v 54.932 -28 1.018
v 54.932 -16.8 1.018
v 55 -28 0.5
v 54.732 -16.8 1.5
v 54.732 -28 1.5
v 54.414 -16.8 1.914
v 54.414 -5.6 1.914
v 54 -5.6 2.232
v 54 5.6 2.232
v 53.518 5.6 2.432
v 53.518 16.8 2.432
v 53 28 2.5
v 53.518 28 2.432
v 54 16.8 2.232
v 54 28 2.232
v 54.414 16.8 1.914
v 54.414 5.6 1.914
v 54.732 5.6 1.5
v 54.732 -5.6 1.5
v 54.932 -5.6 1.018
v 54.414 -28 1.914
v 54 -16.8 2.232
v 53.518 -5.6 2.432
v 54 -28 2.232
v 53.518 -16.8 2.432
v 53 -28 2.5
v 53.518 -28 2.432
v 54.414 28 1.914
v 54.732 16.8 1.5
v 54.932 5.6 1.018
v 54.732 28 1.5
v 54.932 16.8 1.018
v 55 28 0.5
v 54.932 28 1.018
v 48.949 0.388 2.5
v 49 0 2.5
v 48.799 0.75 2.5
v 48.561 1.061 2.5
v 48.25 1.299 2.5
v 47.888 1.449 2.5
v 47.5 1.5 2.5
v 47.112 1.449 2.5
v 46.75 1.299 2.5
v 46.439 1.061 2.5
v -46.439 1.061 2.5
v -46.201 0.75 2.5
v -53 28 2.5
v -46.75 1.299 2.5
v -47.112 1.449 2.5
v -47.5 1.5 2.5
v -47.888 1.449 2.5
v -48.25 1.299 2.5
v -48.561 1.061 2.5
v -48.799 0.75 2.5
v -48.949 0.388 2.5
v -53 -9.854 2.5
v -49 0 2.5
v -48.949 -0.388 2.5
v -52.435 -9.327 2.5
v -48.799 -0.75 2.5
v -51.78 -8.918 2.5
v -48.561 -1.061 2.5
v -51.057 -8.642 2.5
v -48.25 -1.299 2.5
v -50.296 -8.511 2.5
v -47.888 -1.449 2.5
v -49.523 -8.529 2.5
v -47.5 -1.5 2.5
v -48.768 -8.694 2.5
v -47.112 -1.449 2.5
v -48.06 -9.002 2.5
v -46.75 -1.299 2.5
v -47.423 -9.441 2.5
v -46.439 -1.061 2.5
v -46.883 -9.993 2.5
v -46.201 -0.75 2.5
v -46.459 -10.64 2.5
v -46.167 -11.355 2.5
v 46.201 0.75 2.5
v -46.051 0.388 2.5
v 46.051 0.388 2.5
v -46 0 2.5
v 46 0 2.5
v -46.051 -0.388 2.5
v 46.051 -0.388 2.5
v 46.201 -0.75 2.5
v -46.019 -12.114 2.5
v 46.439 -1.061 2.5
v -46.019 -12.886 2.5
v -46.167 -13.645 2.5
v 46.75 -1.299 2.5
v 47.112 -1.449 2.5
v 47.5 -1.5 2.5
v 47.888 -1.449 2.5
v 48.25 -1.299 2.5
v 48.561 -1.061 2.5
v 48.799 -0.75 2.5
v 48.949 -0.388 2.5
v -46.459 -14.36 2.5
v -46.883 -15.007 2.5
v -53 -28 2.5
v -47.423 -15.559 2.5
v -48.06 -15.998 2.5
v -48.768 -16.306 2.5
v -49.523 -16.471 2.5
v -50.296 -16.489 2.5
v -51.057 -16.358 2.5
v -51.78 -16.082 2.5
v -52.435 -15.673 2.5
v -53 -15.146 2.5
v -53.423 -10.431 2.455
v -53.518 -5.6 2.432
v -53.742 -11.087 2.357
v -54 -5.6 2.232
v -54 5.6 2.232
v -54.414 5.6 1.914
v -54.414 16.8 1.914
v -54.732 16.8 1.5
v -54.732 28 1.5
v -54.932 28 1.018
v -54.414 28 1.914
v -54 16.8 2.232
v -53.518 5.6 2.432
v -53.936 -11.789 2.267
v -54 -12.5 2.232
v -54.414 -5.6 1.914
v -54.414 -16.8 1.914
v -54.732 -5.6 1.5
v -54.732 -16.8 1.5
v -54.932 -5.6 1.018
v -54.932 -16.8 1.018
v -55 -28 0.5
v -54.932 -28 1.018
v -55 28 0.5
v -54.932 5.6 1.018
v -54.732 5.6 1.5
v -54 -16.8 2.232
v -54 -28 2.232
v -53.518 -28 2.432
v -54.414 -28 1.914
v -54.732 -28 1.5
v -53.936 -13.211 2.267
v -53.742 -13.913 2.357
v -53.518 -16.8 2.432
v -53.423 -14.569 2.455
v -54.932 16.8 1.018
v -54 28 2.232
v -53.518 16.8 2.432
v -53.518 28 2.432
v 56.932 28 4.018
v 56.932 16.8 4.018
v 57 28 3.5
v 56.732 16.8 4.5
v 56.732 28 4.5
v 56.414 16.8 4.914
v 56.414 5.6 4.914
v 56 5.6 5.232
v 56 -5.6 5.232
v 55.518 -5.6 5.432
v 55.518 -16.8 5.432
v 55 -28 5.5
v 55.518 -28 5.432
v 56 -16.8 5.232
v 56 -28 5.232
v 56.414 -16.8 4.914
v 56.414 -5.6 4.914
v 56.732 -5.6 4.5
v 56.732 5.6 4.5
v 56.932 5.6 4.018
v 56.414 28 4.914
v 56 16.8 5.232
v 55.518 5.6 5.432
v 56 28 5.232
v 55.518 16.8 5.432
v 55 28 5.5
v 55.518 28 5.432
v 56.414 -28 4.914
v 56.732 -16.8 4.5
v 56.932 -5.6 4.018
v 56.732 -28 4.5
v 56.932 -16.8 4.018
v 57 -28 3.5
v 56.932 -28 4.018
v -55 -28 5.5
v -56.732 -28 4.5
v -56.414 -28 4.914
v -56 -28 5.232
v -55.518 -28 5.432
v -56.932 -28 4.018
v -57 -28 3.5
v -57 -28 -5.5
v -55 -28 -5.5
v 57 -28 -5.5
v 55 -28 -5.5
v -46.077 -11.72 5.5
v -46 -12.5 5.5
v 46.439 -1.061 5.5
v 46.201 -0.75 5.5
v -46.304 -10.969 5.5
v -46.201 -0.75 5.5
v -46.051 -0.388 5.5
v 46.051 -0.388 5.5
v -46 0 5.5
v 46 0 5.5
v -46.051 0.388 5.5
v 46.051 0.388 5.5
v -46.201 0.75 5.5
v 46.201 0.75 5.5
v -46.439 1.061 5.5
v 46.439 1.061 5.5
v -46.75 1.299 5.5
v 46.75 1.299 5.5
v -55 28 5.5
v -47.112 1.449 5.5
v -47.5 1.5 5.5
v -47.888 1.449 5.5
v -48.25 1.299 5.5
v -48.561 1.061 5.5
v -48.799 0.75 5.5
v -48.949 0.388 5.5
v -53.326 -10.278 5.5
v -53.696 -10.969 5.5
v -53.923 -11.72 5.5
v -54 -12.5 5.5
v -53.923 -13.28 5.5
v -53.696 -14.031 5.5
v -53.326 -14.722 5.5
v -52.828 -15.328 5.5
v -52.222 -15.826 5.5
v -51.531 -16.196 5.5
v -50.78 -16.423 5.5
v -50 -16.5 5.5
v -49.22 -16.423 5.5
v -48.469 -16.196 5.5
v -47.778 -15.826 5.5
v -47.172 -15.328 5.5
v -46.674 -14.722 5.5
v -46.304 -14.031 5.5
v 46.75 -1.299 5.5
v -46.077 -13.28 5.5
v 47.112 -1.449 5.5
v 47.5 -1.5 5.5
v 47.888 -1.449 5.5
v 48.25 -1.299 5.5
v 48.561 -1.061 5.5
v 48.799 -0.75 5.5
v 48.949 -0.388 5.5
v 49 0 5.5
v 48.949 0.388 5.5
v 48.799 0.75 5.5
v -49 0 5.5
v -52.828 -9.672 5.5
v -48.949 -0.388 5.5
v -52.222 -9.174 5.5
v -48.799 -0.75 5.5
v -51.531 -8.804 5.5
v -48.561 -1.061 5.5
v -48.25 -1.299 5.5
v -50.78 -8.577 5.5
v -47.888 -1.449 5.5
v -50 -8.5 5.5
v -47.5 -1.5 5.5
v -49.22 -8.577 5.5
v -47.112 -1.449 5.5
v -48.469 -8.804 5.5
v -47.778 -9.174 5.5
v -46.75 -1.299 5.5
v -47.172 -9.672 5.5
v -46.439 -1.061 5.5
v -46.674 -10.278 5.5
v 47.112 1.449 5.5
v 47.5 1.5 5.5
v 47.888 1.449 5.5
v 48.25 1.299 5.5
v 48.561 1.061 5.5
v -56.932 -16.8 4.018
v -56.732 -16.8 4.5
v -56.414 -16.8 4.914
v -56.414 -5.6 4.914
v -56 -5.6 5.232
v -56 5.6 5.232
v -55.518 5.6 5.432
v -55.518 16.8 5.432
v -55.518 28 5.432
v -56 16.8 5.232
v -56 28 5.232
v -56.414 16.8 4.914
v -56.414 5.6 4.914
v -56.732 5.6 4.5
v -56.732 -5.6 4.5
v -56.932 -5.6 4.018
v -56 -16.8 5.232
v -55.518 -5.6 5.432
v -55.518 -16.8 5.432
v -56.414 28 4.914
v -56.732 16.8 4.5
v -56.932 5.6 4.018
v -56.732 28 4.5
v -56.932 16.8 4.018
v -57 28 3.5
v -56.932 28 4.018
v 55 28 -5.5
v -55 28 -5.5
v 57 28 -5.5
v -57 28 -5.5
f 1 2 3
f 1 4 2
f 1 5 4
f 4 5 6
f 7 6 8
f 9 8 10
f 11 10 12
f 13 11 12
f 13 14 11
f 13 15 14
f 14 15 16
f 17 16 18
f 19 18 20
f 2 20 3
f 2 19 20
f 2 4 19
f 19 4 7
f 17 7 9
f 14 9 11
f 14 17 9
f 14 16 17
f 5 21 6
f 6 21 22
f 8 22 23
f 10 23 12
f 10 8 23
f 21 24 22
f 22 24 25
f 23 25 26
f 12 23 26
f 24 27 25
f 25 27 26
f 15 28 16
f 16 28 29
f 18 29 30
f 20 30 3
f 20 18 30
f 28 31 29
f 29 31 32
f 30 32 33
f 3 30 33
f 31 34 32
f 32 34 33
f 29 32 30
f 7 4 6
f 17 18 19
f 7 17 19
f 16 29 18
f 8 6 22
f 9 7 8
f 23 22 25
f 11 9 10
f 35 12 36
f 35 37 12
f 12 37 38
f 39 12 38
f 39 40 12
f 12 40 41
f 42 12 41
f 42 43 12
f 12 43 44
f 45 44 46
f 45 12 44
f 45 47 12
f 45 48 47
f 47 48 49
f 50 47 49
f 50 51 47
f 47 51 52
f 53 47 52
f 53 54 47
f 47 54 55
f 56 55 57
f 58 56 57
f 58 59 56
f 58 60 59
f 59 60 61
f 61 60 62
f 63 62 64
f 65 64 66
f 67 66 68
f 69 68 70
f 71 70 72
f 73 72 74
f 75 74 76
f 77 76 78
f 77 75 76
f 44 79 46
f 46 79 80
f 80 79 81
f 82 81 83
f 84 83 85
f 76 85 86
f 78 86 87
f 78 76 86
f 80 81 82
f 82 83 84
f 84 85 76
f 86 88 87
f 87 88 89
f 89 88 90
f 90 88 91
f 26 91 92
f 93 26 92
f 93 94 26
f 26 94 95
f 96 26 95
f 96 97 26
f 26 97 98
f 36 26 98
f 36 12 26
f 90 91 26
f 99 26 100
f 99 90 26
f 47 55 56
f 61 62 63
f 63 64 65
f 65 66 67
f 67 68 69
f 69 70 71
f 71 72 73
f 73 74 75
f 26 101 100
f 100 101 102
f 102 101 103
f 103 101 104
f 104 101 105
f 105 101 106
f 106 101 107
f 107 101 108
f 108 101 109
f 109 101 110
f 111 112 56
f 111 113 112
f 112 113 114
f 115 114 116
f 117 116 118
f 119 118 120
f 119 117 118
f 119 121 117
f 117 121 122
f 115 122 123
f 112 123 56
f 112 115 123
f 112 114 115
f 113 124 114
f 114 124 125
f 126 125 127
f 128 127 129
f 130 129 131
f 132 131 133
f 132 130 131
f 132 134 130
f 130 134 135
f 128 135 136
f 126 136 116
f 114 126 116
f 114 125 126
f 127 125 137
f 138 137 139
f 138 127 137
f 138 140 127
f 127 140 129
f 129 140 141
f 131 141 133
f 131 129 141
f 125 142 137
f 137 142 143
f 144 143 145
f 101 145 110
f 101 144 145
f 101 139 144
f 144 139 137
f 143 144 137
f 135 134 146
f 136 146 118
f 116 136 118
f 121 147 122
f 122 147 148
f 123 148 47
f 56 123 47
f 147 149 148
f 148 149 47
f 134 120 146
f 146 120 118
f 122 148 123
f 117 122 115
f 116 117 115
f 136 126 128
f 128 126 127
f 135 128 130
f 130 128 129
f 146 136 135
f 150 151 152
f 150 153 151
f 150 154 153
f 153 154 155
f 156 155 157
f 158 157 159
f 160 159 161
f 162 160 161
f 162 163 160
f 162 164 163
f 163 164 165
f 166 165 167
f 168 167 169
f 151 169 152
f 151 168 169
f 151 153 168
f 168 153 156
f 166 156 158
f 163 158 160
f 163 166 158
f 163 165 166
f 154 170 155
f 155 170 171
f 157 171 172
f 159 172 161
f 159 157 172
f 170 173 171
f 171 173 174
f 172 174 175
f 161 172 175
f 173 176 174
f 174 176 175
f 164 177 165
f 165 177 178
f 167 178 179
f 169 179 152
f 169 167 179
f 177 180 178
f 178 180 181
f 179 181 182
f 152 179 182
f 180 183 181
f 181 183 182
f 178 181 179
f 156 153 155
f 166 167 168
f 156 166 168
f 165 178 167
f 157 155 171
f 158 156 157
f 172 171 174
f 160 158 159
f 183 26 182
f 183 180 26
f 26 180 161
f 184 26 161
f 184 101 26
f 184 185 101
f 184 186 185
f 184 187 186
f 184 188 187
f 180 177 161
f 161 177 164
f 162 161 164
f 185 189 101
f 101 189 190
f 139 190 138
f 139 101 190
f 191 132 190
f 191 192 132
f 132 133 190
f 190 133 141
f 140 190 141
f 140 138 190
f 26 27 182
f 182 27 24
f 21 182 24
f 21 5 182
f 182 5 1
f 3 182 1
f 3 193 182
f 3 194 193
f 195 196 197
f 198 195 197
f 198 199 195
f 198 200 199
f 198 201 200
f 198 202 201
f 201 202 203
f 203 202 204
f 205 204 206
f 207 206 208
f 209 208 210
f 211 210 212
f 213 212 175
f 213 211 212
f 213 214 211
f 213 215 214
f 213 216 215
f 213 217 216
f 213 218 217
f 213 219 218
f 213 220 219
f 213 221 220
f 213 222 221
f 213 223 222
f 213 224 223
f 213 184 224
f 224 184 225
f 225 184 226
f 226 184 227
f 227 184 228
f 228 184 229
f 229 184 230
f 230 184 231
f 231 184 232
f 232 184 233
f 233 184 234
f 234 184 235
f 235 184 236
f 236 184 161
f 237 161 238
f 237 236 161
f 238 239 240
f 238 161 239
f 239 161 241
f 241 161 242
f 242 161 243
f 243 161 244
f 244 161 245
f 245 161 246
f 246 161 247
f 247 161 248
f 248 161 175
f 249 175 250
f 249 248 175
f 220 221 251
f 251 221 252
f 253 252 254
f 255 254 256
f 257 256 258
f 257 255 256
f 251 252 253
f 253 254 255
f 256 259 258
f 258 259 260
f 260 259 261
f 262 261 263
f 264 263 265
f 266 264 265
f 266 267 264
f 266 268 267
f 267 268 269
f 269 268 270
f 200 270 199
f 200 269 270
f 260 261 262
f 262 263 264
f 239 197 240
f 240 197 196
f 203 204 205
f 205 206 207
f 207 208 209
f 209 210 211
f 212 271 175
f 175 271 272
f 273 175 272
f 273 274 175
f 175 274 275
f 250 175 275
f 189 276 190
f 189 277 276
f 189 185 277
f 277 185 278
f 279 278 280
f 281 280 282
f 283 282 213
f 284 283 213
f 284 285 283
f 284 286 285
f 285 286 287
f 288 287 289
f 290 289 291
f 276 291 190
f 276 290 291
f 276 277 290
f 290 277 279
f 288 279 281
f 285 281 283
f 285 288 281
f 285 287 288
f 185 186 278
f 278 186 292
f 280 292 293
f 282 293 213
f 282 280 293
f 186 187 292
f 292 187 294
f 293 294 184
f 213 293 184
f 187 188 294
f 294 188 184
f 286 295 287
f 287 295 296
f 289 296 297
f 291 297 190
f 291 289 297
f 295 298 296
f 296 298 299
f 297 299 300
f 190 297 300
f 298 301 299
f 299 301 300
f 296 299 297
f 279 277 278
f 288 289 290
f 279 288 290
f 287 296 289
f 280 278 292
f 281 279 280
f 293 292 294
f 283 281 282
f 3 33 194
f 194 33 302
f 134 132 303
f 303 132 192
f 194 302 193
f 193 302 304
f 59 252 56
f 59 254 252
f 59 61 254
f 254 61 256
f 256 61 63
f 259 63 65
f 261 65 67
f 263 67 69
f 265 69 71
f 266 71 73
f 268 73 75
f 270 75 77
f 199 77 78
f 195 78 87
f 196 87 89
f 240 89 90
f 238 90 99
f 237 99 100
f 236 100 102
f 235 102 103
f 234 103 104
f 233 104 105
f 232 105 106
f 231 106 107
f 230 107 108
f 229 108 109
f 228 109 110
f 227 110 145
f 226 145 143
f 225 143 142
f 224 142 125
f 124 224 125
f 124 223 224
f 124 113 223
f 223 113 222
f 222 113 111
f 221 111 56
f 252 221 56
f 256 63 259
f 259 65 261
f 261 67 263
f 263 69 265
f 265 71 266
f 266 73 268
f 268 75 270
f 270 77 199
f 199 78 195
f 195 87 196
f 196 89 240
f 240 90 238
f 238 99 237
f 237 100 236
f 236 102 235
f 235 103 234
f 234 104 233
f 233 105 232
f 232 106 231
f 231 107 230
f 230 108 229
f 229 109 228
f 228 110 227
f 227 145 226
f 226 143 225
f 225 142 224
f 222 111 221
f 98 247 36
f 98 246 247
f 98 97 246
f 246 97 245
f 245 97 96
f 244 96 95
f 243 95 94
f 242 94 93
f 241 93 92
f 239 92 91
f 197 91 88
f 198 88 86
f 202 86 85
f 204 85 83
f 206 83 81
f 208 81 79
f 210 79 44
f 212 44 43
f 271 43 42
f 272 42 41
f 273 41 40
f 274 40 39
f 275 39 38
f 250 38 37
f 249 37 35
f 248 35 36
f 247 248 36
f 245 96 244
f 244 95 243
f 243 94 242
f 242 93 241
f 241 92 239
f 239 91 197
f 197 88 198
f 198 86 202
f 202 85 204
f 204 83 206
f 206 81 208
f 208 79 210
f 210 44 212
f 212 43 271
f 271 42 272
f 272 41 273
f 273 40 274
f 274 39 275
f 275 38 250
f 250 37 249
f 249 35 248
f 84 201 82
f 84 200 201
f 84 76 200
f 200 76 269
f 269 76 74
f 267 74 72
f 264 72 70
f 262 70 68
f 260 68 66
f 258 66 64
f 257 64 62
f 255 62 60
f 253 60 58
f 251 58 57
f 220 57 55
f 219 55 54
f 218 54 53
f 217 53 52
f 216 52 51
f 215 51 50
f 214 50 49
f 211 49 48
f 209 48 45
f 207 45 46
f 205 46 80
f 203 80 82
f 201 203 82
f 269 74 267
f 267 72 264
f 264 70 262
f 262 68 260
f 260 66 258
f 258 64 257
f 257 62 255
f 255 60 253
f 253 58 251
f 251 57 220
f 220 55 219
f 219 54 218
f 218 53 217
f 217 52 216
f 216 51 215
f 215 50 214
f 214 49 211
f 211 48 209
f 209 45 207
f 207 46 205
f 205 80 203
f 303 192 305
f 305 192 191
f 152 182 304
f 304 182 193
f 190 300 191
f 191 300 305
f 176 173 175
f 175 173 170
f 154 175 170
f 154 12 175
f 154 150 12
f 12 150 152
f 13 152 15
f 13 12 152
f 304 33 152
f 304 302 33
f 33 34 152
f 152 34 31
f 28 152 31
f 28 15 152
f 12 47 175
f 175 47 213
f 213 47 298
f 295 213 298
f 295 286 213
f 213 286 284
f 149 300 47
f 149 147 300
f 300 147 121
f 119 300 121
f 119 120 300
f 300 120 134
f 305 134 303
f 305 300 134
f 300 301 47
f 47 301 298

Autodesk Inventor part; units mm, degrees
sketch "Skizze1" plane through (0, 0, 0) normal (0, 0, 1) x (1, 0, 0)
  line L0 (-57, 28) -> (57, 28)
  line L1 (57, 28) -> (57, -28)
  line L2 (57, -28) -> (-57, -28)
  line L3 (-57, -28) -> (-57, 28)
  line L4 (0, -39.2) -> (0, 39.2) projected
  line L5 (-79.8, 0) -> (79.8, 0) projected
  circle A0 centre (-47.5, 0) radius 1.5
  circle A1 centre (47.5, 0) radius 1.5
  circle A2 centre (-50, -12.5) radius 4
  point P0 (0, 0)
  dimension "d0" = 114
  dimension "d1" = 56
  dimension "d2" = 3
  dimension "d3" = 47.5
  dimension "d4" = 8
  dimension "d5" = 40.5
  dimension "d6" = 7
extrude "Extrusion1" add sketch "Skizze1" along normal mid plane 11 contours L0 L4 L5 A0 L3 | L0 L1 L5 A1 L4 | L5 A0 L4 L2 L3 | L5 A1 L1 L2 L4
sketch "Skizze2" plane through (0, 0, -5.5) normal (0, 0, -1) x (-1, 0, 0)
  line L0 (57, -28) -> (57, 28) projected
  line L1 (-57, 28) -> (-57, -28) projected
  line L2 (55, -28) -> (55, 28)
  line L3 (-55, 28) -> (-55, -28)
  line L4 (55, -28) -> (-55, -28)
  line L5 (-55, 28) -> (55, 28)
  line L6 (-57, 28) -> (57, 28) projected
  point P0 (0, 0)
  dimension "d9" = 2
  dimension "d10" = 2
extrude "Extrusion2" cut sketch "Skizze2" against normal blind 8
fillet "Rundung1" radius 2 2 edges at (-57, 0, 5.5) (57, 0, 5.5)
fillet "Rundung2" radius 2 2 edges at (-55, 0, 2.5) (55, 0, 2.5)
properties part number "KarosserieDachTeil4"
